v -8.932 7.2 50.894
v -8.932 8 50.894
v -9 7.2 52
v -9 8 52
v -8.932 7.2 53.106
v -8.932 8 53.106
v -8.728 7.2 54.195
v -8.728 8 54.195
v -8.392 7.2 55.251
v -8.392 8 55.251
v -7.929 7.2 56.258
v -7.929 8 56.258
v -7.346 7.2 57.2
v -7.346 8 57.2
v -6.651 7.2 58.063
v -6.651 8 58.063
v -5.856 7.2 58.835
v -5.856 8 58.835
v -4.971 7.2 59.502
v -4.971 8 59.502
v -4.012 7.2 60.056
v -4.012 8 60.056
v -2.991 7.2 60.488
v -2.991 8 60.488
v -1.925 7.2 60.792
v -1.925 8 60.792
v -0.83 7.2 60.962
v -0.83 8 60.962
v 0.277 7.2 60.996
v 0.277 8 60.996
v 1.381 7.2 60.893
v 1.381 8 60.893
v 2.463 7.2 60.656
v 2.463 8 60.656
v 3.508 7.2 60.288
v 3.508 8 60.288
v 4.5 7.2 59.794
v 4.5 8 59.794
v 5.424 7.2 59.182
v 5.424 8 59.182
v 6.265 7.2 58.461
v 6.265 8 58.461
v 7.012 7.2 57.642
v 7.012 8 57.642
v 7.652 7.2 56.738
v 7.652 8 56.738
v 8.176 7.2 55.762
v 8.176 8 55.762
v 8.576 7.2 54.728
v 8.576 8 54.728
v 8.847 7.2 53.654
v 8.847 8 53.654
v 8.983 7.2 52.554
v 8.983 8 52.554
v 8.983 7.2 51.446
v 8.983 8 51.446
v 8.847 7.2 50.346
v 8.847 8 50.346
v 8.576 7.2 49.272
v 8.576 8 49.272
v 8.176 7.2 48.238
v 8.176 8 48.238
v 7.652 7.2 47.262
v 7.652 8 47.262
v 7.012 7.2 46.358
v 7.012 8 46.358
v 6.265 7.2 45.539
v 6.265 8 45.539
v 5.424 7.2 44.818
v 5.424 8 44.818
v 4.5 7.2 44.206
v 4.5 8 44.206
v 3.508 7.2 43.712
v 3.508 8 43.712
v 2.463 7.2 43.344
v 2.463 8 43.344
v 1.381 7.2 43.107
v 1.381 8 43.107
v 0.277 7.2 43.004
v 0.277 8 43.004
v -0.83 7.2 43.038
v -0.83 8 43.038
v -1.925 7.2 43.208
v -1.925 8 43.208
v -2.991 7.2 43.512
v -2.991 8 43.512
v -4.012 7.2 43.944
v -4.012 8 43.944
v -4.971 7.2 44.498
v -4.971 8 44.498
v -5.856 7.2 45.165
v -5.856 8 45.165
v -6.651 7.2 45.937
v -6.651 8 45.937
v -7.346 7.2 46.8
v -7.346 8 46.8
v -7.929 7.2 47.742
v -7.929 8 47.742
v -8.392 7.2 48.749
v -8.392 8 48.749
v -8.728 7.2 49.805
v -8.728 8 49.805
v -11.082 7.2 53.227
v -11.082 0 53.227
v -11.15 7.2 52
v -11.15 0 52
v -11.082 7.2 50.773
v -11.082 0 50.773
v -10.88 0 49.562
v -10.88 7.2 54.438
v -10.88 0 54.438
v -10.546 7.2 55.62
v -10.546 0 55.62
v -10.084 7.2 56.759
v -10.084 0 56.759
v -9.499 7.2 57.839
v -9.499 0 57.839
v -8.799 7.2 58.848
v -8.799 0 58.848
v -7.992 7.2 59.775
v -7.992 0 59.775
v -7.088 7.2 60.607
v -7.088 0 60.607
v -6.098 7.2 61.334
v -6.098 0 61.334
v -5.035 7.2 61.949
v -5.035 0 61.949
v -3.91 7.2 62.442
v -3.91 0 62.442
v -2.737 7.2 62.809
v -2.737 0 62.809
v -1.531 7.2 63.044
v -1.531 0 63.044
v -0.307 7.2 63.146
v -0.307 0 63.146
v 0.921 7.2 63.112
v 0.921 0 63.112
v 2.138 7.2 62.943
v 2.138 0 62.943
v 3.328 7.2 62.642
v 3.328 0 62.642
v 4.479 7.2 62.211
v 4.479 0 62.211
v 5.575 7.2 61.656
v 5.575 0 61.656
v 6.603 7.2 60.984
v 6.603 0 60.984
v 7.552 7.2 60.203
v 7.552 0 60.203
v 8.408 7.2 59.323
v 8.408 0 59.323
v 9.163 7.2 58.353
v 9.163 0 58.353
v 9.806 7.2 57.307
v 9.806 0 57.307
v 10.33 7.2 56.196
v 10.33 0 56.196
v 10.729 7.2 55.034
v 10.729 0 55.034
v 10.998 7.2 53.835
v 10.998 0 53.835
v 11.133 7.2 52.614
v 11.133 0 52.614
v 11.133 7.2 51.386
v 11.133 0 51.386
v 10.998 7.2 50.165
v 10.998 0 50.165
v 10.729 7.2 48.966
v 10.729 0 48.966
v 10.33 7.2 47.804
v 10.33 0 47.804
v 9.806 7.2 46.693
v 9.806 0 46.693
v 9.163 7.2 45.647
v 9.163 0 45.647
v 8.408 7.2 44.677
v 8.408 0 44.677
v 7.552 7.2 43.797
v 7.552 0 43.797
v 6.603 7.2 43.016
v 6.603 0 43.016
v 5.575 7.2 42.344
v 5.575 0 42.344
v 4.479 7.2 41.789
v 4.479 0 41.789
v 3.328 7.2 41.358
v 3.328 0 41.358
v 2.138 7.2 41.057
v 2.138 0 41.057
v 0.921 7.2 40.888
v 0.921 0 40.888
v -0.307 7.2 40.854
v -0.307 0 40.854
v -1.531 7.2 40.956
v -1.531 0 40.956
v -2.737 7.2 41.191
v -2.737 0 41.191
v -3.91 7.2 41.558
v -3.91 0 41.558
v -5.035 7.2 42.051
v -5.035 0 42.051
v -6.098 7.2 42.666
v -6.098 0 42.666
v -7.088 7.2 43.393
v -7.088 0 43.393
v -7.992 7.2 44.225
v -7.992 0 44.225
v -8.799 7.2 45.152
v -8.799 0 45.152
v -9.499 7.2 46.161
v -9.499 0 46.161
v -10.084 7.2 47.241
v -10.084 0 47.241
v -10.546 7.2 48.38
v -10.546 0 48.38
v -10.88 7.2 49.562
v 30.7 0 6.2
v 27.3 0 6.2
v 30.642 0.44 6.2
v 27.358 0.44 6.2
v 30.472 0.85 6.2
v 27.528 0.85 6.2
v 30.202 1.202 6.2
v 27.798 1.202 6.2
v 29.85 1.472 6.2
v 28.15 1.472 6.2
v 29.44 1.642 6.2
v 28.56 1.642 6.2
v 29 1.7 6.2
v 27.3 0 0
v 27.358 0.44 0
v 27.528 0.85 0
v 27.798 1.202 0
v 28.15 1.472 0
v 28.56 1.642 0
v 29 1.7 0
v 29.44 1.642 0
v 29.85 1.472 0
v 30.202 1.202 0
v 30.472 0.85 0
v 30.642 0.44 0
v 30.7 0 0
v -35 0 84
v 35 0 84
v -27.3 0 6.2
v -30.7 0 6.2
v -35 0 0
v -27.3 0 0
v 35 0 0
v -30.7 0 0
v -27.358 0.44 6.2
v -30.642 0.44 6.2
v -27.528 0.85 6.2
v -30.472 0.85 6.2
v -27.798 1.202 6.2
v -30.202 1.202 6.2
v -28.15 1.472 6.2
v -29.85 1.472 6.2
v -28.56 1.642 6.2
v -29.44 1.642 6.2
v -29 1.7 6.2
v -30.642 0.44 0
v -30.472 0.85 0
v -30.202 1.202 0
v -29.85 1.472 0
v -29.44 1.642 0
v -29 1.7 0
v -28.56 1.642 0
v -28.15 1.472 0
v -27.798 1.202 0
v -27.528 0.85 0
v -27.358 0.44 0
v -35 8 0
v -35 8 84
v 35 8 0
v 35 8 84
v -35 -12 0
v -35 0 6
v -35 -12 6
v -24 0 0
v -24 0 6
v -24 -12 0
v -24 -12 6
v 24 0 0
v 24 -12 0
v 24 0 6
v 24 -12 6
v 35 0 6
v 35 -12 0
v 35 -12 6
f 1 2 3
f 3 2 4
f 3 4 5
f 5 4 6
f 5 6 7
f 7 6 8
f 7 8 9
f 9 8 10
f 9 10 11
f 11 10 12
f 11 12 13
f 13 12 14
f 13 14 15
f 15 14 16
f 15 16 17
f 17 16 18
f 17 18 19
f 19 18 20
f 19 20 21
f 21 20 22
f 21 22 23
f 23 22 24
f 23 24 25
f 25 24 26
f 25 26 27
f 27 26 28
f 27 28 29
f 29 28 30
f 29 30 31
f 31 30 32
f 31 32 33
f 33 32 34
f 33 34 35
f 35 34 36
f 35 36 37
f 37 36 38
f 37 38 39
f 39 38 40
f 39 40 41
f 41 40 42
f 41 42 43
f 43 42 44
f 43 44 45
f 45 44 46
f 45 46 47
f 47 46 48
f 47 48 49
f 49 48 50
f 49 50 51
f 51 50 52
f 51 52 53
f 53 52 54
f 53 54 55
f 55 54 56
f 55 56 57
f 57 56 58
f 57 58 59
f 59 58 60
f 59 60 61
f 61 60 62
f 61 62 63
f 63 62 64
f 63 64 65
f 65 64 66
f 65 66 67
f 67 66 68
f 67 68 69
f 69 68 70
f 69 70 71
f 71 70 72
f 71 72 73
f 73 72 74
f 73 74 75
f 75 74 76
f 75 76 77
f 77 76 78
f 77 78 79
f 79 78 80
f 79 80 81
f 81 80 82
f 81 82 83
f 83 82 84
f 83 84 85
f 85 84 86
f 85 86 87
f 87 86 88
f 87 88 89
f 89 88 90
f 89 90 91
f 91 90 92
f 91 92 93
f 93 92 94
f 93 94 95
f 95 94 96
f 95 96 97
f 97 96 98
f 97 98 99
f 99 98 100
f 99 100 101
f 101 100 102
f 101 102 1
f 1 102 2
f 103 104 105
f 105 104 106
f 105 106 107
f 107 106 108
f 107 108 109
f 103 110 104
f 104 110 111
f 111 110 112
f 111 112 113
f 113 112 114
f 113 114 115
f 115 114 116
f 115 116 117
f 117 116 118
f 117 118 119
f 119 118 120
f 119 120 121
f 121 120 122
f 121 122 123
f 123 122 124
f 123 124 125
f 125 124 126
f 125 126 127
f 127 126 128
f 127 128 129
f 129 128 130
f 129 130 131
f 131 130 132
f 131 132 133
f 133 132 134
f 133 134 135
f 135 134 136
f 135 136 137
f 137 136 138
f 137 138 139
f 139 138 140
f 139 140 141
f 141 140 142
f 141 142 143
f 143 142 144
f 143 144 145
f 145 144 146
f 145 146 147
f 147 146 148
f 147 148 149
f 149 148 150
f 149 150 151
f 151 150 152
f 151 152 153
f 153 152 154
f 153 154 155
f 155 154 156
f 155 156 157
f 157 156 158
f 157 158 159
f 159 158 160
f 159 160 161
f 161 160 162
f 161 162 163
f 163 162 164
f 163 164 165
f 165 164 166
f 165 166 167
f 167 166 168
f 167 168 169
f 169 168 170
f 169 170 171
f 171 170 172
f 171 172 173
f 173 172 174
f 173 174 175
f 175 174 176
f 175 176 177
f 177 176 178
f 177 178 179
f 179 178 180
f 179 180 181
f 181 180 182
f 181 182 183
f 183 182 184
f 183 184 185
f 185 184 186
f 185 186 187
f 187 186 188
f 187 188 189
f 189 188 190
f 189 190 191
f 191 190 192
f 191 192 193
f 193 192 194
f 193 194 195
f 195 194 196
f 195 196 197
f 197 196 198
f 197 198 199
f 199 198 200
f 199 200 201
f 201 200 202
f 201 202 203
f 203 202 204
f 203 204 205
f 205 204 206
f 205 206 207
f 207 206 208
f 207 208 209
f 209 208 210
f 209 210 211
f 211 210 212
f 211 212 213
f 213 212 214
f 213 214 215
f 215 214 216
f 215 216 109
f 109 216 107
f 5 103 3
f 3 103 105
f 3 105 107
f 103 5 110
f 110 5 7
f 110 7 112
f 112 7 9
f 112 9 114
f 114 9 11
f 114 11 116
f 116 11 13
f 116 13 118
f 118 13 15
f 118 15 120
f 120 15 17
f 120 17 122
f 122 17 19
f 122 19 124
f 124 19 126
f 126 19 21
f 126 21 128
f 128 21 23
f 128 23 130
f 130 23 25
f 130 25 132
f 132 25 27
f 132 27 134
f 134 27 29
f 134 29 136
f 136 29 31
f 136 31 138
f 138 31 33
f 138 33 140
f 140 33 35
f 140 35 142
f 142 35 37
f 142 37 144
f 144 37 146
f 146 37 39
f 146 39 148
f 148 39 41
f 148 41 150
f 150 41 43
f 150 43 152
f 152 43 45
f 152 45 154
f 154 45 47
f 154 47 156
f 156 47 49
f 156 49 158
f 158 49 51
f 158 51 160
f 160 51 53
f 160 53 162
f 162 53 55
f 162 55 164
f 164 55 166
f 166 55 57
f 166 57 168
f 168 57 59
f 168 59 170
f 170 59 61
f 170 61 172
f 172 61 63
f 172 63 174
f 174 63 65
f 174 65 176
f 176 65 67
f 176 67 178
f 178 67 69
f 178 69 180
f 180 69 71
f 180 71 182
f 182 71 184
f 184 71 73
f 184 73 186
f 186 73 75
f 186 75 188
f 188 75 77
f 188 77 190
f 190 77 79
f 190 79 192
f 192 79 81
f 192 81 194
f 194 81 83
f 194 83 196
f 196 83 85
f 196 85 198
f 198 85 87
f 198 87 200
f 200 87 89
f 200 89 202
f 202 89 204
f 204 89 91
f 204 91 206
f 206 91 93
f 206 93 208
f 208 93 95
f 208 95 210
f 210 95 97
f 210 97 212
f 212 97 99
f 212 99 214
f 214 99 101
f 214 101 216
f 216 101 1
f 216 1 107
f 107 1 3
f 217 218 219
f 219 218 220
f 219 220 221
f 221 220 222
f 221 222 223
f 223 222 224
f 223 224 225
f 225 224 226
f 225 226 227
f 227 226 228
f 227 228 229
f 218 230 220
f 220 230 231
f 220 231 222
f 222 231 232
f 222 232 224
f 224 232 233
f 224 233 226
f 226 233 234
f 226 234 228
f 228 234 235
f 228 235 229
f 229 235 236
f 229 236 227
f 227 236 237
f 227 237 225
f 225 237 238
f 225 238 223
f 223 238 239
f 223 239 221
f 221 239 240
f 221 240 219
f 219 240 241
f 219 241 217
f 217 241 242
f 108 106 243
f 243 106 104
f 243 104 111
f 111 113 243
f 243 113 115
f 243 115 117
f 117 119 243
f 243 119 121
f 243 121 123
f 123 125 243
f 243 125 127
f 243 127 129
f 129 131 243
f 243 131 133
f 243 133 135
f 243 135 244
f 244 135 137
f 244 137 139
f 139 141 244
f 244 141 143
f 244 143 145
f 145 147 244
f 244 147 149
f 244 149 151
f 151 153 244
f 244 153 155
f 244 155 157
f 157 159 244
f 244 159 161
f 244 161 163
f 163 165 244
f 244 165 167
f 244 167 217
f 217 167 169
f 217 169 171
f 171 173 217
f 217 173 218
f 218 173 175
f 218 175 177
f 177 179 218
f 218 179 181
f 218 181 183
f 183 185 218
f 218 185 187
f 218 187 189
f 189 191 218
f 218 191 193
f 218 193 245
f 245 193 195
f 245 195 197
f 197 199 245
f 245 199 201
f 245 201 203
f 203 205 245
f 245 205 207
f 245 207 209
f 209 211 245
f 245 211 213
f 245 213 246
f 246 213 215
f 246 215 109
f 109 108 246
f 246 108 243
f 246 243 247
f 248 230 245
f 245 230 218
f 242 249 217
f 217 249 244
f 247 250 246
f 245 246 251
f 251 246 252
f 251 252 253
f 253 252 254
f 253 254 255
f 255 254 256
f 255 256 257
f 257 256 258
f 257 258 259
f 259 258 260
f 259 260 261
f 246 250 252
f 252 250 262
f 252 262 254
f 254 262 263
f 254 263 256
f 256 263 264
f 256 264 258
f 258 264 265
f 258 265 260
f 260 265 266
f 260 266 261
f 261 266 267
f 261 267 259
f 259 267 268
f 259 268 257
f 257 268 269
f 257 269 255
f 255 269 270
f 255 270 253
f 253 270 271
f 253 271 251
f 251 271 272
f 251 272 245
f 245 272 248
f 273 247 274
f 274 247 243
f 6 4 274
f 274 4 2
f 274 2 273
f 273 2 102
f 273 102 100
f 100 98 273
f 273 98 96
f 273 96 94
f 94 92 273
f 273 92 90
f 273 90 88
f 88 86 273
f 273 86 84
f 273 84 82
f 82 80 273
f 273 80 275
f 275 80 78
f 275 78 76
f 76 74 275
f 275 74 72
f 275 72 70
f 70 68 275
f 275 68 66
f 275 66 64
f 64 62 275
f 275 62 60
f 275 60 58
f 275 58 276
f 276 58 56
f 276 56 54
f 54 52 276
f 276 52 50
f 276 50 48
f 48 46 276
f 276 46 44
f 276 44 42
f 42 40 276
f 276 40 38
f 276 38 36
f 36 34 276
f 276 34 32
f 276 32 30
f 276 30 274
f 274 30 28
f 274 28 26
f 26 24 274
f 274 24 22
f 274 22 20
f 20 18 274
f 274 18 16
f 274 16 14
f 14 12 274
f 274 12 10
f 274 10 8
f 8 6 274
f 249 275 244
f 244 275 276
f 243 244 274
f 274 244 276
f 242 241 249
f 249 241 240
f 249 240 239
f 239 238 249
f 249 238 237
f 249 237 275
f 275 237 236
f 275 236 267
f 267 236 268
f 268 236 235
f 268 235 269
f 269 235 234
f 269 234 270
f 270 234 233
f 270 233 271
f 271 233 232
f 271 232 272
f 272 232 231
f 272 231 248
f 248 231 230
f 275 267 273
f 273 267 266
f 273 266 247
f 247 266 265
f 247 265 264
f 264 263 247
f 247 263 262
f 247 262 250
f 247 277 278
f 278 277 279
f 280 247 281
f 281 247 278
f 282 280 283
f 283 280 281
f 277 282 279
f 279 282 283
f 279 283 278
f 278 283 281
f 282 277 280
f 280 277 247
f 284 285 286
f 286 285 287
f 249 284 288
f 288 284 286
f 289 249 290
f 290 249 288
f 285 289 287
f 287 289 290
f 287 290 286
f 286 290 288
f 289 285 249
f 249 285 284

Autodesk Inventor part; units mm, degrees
ref_plane "YZ Plane" through (0, 0, 0) normal (1, 0, 0) x (0, 1, 0)
ref_plane "XZ Plane" through (0, 0, 0) normal (0, 1, 0) x (-1, 0, 0)
ref_plane "XY Plane" through (0, 0, 0) normal (0, 0, 1) x (1, 0, 0)
sketch "Skizze1" plane through (0, 0, 0) normal (0, 0, 1) x (1, 0, 0)
  line L0 (-35, 0) -> (35, 0)
  line L1 (35, 0) -> (35, 8)
  line L2 (35, 8) -> (-35, 8)
  line L3 (-35, 8) -> (-35, 0)
extrude "Extrusion1" add sketch "Skizze1" along normal blind 84
sketch "Skizze2" plane through (0, 0, 0) normal (0, 0, 1) x (1, 0, 0)
  line L0 (-35, -12) -> (-24, -12)
  line L1 (-24, -12) -> (-24, 0)
  line L2 (-24, 0) -> (-35, 0)
  line L3 (-35, 0) -> (-35, -12)
extrude "Extrusion2" add sketch "Skizze2" along normal blind 6 separate body
sketch "Skizze3" plane through (0, 0, 0) normal (0, 0, 1) x (1, 0, 0)
  line L0 (24, -12) -> (35, -12)
  line L1 (35, -12) -> (35, 0)
  line L2 (35, 0) -> (24, 0)
  line L3 (24, 0) -> (24, -12)
extrude "Extrusion3" add sketch "Skizze3" along normal blind 6 separate body
sketch "Skizze4" plane through (0, 0, 0) normal (0, 0, 1) x (1, 0, 0)
  circle A0 centre (-29, 0) radius 1.7
extrude "Extrusion4" cut sketch "Skizze4" along normal blind 6.2 bodies 1
sketch "Skizze5" plane through (0, 0, 0) normal (0, 0, 1) x (1, 0, 0)
  circle A0 centre (29, 0) radius 1.7
extrude "Extrusion5" cut sketch "Skizze5" along normal blind 6.2 bodies 1
sketch "Skizze6" plane through (0, 0, 0) normal (0, 1, 0) x (-1, 0, 0)
  circle A0 centre (0, 52) radius 11.15
extrude "Extrusion6" cut sketch "Skizze6" along normal blind 7.2 bodies 1
sketch "Skizze7" plane through (0, 0, 0) normal (0, 1, 0) x (-1, 0, 0)
  circle A0 centre (0, 52) radius 9
extrude "Extrusion7" cut sketch "Skizze7" along normal blind 8.2 bodies 1
properties part number "Turm_Idler"
